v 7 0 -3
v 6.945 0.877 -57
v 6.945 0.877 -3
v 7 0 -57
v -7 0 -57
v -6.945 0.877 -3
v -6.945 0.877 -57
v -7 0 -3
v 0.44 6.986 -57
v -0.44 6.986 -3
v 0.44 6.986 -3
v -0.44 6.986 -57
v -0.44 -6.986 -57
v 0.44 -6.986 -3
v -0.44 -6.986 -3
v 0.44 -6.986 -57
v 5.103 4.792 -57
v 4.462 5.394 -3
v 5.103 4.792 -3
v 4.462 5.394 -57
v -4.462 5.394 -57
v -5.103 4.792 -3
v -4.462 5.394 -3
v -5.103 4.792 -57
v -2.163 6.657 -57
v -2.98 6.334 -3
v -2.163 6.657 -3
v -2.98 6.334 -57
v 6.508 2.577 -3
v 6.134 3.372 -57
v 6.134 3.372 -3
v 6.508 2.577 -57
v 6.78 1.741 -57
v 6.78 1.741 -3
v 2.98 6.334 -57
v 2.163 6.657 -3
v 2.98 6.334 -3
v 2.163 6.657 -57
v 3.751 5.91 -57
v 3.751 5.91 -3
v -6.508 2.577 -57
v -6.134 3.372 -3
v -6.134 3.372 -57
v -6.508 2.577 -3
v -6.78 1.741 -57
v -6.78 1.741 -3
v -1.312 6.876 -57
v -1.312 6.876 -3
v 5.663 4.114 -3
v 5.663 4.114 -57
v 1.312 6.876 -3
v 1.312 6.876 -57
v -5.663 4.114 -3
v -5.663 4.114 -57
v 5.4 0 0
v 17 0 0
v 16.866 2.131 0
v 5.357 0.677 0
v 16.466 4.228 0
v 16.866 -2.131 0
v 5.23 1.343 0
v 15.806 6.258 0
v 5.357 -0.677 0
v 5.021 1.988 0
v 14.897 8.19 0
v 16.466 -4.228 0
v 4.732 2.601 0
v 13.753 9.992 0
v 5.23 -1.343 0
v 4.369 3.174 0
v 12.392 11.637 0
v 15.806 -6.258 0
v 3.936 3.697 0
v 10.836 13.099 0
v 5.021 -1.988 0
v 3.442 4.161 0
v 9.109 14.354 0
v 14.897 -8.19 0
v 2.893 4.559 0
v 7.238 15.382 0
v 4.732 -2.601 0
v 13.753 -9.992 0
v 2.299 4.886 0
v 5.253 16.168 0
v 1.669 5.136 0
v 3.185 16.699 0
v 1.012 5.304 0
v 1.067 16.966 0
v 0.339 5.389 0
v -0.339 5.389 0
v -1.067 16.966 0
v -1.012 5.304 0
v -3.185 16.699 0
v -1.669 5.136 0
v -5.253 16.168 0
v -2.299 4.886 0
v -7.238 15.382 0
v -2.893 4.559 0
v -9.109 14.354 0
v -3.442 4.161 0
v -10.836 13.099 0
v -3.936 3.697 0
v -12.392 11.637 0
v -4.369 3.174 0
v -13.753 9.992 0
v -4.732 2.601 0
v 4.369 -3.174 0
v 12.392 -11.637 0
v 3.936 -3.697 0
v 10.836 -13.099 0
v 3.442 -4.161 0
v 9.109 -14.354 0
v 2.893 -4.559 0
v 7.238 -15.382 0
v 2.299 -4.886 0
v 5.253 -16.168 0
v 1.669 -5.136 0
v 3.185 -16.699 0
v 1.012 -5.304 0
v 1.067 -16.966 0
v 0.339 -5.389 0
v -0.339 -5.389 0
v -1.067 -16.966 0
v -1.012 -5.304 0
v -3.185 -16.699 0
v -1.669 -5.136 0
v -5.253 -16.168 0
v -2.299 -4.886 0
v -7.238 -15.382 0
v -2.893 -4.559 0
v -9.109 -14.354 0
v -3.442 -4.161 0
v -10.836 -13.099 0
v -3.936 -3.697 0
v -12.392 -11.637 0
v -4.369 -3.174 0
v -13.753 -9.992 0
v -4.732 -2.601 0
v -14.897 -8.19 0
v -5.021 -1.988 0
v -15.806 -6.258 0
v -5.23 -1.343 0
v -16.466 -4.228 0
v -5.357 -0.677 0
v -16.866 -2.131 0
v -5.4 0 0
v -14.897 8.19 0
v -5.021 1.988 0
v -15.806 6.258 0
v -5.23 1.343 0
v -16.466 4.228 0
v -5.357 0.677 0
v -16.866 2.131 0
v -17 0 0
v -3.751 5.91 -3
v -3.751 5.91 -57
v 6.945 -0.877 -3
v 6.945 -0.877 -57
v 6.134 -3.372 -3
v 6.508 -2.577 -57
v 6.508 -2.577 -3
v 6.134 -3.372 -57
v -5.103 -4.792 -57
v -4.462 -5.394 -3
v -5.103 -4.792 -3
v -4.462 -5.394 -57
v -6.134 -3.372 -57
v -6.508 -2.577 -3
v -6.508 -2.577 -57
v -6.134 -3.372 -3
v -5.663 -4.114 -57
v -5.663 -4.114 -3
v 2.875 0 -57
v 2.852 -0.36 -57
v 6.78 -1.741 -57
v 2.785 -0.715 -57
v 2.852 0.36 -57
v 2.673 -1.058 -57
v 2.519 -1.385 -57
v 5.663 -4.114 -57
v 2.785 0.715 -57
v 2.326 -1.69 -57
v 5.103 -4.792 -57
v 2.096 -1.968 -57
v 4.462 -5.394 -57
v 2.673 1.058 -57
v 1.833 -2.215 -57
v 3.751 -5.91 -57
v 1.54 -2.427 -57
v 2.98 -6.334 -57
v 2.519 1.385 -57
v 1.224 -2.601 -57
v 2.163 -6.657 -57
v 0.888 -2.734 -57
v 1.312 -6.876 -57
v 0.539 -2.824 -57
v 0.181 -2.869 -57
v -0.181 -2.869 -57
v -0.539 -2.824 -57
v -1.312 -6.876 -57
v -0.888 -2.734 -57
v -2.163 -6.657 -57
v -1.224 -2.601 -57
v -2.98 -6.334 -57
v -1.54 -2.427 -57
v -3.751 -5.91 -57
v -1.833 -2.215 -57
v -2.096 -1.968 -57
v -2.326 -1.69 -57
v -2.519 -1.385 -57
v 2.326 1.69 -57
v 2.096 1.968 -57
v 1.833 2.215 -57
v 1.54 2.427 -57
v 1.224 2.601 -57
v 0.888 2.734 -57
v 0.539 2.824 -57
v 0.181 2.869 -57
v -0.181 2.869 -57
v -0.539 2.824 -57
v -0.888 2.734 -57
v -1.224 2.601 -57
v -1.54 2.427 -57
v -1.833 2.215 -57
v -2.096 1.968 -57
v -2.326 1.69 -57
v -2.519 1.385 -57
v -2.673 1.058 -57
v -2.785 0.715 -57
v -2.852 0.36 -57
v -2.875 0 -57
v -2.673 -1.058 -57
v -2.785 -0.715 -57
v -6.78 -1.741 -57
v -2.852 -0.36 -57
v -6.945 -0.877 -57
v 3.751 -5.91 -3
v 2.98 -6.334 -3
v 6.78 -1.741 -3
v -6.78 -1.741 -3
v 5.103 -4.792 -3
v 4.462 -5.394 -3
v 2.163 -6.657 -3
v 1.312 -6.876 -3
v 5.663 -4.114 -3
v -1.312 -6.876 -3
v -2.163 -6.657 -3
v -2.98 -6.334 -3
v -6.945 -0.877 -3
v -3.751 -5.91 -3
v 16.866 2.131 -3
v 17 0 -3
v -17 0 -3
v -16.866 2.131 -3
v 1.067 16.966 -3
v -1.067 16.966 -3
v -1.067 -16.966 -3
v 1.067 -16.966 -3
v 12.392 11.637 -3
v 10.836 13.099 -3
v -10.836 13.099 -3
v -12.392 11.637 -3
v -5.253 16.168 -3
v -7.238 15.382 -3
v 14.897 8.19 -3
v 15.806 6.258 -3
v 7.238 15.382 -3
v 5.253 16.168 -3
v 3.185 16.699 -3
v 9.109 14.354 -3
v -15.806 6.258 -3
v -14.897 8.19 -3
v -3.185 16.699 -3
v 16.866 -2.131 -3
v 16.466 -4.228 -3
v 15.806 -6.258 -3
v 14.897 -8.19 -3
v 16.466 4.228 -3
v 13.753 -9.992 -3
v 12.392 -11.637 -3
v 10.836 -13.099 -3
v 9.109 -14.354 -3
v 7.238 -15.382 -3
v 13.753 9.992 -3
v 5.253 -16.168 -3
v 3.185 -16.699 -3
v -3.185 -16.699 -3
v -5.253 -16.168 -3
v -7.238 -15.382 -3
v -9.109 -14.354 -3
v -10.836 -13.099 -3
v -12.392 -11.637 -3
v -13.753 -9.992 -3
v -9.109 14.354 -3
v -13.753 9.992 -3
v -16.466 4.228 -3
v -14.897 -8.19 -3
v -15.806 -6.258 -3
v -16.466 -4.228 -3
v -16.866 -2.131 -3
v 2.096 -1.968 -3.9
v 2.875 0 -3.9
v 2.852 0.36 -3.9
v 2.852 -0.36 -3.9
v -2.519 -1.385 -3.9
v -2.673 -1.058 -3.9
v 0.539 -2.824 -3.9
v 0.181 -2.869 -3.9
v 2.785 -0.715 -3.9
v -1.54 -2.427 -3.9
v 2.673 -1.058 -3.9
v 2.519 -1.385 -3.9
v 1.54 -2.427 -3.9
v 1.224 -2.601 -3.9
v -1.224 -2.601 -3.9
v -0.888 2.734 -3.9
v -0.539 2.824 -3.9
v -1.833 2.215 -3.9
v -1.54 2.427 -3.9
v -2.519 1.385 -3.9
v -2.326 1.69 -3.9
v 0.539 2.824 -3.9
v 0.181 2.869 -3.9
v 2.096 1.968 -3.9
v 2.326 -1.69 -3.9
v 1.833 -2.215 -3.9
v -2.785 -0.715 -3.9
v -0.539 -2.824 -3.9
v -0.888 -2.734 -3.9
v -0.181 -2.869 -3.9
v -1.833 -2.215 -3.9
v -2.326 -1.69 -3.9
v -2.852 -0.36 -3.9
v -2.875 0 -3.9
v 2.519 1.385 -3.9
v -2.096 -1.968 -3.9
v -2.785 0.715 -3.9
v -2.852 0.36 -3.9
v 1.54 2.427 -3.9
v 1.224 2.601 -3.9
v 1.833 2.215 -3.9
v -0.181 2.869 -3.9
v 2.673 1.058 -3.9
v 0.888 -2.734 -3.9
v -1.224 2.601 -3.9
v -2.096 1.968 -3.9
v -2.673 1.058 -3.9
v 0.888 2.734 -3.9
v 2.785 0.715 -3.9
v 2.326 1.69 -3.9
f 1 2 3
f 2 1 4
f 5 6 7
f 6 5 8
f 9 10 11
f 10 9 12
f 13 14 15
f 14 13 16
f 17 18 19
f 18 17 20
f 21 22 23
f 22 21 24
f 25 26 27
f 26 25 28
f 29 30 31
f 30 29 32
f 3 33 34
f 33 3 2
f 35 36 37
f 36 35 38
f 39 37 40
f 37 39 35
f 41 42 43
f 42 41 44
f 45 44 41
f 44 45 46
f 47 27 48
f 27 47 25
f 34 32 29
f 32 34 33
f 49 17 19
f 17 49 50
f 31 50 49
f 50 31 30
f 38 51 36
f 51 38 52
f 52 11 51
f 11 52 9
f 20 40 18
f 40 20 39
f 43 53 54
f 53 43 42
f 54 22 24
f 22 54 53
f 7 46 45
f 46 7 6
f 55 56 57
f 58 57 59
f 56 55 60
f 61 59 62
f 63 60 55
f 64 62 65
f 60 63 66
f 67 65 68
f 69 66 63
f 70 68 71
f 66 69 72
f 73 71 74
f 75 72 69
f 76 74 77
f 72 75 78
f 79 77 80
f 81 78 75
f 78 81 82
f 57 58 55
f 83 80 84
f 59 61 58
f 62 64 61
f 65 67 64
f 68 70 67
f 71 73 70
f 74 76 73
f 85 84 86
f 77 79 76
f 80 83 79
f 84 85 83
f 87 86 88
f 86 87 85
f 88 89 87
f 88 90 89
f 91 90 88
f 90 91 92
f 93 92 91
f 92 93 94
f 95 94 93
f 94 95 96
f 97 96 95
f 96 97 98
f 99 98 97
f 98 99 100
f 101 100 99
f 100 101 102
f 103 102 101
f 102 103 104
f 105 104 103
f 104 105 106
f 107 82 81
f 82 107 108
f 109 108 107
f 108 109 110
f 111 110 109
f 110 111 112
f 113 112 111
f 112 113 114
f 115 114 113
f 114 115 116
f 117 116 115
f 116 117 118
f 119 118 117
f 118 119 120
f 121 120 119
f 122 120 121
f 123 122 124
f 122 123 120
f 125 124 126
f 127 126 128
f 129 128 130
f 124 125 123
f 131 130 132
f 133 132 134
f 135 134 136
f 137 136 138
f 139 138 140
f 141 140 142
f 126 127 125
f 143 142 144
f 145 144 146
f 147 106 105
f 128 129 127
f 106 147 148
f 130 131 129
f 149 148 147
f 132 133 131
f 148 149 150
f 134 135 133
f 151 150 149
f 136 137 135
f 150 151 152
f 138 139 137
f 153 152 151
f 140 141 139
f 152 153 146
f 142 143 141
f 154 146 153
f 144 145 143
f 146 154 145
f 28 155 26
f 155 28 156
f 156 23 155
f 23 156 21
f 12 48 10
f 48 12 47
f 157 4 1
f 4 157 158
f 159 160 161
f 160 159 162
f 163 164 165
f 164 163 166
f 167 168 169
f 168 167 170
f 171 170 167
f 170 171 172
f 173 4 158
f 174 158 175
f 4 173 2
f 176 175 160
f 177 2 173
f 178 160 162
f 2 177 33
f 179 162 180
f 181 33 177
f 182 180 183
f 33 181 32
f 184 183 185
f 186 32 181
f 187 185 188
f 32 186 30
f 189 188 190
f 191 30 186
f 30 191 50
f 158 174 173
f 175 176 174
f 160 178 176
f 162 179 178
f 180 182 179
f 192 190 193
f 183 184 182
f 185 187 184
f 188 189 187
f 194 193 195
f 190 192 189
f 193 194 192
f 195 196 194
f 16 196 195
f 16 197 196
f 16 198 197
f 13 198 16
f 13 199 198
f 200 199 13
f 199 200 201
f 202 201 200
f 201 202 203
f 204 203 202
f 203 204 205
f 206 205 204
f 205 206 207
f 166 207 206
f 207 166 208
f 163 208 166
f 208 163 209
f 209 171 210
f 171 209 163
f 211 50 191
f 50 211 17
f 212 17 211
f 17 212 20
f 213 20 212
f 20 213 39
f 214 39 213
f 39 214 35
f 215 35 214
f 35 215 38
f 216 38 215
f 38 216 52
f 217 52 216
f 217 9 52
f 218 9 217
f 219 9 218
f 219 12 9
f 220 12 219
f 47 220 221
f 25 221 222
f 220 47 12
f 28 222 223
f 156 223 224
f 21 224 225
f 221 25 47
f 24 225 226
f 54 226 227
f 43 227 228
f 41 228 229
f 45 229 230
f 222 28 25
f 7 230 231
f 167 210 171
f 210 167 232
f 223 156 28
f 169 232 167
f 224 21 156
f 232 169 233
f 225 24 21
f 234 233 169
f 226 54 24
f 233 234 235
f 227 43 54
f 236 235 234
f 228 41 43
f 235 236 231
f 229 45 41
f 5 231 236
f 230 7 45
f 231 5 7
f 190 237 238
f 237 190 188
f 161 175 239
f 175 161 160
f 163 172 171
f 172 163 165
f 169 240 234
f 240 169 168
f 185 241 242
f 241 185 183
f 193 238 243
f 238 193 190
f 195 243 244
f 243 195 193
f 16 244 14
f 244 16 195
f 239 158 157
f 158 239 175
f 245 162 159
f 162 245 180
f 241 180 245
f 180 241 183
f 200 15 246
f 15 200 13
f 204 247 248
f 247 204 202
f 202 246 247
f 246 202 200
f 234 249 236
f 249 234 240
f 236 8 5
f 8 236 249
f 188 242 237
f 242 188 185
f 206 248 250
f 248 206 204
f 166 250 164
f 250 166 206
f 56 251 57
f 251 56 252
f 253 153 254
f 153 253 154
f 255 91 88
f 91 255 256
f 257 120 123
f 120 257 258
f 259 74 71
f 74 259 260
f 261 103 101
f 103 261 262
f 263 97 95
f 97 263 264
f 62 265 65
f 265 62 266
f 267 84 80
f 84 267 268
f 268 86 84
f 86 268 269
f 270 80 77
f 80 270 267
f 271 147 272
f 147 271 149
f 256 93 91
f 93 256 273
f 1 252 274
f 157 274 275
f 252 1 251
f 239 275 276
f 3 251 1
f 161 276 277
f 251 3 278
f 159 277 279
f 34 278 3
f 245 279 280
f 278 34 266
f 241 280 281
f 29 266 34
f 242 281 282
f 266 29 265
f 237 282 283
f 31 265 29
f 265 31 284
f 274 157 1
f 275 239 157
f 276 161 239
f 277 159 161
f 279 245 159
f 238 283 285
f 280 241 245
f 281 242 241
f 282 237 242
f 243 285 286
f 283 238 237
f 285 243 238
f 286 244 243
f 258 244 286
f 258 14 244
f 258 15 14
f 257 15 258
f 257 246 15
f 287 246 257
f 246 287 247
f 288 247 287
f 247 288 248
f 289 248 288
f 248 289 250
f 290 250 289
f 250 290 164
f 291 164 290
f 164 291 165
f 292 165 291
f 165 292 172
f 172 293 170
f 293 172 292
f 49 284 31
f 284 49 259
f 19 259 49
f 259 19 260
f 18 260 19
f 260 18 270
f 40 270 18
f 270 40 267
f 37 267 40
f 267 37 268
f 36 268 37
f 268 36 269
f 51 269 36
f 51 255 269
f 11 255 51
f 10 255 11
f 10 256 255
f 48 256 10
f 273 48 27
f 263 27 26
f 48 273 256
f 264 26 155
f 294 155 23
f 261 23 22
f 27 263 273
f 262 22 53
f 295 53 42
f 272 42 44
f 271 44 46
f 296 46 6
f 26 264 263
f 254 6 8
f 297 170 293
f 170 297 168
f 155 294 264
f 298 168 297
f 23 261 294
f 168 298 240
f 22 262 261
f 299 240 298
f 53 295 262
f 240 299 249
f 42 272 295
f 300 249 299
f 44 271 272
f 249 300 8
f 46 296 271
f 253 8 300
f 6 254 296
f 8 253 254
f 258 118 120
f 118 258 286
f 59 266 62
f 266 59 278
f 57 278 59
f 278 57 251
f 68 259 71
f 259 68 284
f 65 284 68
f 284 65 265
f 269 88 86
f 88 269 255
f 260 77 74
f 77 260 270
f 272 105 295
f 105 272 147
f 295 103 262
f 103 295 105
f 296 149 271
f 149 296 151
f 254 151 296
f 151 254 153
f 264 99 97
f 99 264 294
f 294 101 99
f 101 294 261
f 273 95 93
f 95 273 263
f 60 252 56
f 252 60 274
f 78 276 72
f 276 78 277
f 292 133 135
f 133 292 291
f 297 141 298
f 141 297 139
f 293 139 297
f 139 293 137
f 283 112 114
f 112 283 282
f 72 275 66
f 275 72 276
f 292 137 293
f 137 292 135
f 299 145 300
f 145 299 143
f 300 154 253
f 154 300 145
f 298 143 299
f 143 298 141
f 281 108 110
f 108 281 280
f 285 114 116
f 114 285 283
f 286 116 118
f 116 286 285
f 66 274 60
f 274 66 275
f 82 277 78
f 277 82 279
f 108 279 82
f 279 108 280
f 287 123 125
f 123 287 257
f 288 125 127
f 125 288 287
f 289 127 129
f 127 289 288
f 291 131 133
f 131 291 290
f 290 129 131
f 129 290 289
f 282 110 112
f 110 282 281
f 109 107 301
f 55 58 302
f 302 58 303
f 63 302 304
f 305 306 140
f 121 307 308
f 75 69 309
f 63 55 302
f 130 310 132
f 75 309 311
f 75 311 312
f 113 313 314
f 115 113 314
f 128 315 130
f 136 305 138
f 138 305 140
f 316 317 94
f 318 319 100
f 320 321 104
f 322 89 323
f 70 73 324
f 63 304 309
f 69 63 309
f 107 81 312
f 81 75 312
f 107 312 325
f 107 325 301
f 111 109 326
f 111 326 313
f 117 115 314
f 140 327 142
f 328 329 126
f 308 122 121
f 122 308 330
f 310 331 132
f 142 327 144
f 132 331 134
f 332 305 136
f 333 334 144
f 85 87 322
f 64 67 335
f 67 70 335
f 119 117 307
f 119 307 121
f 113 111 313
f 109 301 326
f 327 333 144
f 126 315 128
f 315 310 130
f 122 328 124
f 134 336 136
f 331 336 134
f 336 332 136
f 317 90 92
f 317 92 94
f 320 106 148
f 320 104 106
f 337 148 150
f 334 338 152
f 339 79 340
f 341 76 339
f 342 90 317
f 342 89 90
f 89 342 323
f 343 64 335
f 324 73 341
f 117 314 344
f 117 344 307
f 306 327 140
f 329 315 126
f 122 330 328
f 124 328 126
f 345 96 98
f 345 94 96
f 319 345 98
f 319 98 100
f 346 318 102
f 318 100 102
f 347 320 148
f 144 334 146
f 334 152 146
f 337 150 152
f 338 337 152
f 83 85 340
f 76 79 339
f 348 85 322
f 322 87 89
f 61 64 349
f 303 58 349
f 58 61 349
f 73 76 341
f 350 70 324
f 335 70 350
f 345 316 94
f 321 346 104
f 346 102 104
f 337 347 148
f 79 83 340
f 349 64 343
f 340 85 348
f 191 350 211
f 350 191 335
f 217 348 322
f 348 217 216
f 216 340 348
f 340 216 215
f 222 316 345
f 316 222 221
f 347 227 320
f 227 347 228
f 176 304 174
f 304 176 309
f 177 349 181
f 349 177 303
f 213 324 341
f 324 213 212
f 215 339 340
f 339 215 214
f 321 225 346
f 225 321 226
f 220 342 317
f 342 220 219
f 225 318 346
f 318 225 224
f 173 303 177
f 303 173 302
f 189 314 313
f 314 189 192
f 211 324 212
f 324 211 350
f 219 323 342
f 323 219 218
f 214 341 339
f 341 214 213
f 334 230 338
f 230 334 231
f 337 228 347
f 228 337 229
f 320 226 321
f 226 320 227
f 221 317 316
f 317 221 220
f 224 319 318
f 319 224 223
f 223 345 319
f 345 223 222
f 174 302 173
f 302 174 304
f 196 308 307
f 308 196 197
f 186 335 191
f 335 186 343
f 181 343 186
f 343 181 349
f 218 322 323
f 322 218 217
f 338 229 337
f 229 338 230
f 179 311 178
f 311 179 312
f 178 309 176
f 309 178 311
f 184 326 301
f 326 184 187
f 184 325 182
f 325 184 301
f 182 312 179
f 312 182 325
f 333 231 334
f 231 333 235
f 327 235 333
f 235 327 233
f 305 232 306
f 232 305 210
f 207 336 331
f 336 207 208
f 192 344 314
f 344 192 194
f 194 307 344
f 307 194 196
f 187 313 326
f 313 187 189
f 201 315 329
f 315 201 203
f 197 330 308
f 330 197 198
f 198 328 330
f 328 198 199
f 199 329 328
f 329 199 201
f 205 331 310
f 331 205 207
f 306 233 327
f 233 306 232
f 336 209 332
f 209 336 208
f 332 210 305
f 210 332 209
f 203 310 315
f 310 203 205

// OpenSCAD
$fn = 50;


difference() {
	union() {
		translate(v = [0, 0, -57.0000000000]) {
			cylinder(h = 57, r = 7.0000000000);
		}
		translate(v = [0, 0, -3.0000000000]) {
			cylinder(h = 3, r = 17.0000000000);
		}
	}
	union() {
		translate(v = [0, 0, 0]) {
			rotate(a = [0, 0, 0]) {
				difference() {
					union() {
						#translate(v = [0, 0, -57.0000000000]) {
							cylinder(h = 57, r = 2.6000000000);
						}
						#translate(v = [0, 0, -3.9000000000]) {
							cylinder(h = 3.9000000000, r1 = 2.8750000000, r2 = 5.4000000000);
						}
						#translate(v = [0, 0, -57.0000000000]) {
							cylinder(h = 57, r = 2.8750000000);
						}
						#translate(v = [0, 0, -57.0000000000]) {
							cylinder(h = 57, r = 2.6000000000);
						}
					}
					union();
				}
			}
		}
	}
}
